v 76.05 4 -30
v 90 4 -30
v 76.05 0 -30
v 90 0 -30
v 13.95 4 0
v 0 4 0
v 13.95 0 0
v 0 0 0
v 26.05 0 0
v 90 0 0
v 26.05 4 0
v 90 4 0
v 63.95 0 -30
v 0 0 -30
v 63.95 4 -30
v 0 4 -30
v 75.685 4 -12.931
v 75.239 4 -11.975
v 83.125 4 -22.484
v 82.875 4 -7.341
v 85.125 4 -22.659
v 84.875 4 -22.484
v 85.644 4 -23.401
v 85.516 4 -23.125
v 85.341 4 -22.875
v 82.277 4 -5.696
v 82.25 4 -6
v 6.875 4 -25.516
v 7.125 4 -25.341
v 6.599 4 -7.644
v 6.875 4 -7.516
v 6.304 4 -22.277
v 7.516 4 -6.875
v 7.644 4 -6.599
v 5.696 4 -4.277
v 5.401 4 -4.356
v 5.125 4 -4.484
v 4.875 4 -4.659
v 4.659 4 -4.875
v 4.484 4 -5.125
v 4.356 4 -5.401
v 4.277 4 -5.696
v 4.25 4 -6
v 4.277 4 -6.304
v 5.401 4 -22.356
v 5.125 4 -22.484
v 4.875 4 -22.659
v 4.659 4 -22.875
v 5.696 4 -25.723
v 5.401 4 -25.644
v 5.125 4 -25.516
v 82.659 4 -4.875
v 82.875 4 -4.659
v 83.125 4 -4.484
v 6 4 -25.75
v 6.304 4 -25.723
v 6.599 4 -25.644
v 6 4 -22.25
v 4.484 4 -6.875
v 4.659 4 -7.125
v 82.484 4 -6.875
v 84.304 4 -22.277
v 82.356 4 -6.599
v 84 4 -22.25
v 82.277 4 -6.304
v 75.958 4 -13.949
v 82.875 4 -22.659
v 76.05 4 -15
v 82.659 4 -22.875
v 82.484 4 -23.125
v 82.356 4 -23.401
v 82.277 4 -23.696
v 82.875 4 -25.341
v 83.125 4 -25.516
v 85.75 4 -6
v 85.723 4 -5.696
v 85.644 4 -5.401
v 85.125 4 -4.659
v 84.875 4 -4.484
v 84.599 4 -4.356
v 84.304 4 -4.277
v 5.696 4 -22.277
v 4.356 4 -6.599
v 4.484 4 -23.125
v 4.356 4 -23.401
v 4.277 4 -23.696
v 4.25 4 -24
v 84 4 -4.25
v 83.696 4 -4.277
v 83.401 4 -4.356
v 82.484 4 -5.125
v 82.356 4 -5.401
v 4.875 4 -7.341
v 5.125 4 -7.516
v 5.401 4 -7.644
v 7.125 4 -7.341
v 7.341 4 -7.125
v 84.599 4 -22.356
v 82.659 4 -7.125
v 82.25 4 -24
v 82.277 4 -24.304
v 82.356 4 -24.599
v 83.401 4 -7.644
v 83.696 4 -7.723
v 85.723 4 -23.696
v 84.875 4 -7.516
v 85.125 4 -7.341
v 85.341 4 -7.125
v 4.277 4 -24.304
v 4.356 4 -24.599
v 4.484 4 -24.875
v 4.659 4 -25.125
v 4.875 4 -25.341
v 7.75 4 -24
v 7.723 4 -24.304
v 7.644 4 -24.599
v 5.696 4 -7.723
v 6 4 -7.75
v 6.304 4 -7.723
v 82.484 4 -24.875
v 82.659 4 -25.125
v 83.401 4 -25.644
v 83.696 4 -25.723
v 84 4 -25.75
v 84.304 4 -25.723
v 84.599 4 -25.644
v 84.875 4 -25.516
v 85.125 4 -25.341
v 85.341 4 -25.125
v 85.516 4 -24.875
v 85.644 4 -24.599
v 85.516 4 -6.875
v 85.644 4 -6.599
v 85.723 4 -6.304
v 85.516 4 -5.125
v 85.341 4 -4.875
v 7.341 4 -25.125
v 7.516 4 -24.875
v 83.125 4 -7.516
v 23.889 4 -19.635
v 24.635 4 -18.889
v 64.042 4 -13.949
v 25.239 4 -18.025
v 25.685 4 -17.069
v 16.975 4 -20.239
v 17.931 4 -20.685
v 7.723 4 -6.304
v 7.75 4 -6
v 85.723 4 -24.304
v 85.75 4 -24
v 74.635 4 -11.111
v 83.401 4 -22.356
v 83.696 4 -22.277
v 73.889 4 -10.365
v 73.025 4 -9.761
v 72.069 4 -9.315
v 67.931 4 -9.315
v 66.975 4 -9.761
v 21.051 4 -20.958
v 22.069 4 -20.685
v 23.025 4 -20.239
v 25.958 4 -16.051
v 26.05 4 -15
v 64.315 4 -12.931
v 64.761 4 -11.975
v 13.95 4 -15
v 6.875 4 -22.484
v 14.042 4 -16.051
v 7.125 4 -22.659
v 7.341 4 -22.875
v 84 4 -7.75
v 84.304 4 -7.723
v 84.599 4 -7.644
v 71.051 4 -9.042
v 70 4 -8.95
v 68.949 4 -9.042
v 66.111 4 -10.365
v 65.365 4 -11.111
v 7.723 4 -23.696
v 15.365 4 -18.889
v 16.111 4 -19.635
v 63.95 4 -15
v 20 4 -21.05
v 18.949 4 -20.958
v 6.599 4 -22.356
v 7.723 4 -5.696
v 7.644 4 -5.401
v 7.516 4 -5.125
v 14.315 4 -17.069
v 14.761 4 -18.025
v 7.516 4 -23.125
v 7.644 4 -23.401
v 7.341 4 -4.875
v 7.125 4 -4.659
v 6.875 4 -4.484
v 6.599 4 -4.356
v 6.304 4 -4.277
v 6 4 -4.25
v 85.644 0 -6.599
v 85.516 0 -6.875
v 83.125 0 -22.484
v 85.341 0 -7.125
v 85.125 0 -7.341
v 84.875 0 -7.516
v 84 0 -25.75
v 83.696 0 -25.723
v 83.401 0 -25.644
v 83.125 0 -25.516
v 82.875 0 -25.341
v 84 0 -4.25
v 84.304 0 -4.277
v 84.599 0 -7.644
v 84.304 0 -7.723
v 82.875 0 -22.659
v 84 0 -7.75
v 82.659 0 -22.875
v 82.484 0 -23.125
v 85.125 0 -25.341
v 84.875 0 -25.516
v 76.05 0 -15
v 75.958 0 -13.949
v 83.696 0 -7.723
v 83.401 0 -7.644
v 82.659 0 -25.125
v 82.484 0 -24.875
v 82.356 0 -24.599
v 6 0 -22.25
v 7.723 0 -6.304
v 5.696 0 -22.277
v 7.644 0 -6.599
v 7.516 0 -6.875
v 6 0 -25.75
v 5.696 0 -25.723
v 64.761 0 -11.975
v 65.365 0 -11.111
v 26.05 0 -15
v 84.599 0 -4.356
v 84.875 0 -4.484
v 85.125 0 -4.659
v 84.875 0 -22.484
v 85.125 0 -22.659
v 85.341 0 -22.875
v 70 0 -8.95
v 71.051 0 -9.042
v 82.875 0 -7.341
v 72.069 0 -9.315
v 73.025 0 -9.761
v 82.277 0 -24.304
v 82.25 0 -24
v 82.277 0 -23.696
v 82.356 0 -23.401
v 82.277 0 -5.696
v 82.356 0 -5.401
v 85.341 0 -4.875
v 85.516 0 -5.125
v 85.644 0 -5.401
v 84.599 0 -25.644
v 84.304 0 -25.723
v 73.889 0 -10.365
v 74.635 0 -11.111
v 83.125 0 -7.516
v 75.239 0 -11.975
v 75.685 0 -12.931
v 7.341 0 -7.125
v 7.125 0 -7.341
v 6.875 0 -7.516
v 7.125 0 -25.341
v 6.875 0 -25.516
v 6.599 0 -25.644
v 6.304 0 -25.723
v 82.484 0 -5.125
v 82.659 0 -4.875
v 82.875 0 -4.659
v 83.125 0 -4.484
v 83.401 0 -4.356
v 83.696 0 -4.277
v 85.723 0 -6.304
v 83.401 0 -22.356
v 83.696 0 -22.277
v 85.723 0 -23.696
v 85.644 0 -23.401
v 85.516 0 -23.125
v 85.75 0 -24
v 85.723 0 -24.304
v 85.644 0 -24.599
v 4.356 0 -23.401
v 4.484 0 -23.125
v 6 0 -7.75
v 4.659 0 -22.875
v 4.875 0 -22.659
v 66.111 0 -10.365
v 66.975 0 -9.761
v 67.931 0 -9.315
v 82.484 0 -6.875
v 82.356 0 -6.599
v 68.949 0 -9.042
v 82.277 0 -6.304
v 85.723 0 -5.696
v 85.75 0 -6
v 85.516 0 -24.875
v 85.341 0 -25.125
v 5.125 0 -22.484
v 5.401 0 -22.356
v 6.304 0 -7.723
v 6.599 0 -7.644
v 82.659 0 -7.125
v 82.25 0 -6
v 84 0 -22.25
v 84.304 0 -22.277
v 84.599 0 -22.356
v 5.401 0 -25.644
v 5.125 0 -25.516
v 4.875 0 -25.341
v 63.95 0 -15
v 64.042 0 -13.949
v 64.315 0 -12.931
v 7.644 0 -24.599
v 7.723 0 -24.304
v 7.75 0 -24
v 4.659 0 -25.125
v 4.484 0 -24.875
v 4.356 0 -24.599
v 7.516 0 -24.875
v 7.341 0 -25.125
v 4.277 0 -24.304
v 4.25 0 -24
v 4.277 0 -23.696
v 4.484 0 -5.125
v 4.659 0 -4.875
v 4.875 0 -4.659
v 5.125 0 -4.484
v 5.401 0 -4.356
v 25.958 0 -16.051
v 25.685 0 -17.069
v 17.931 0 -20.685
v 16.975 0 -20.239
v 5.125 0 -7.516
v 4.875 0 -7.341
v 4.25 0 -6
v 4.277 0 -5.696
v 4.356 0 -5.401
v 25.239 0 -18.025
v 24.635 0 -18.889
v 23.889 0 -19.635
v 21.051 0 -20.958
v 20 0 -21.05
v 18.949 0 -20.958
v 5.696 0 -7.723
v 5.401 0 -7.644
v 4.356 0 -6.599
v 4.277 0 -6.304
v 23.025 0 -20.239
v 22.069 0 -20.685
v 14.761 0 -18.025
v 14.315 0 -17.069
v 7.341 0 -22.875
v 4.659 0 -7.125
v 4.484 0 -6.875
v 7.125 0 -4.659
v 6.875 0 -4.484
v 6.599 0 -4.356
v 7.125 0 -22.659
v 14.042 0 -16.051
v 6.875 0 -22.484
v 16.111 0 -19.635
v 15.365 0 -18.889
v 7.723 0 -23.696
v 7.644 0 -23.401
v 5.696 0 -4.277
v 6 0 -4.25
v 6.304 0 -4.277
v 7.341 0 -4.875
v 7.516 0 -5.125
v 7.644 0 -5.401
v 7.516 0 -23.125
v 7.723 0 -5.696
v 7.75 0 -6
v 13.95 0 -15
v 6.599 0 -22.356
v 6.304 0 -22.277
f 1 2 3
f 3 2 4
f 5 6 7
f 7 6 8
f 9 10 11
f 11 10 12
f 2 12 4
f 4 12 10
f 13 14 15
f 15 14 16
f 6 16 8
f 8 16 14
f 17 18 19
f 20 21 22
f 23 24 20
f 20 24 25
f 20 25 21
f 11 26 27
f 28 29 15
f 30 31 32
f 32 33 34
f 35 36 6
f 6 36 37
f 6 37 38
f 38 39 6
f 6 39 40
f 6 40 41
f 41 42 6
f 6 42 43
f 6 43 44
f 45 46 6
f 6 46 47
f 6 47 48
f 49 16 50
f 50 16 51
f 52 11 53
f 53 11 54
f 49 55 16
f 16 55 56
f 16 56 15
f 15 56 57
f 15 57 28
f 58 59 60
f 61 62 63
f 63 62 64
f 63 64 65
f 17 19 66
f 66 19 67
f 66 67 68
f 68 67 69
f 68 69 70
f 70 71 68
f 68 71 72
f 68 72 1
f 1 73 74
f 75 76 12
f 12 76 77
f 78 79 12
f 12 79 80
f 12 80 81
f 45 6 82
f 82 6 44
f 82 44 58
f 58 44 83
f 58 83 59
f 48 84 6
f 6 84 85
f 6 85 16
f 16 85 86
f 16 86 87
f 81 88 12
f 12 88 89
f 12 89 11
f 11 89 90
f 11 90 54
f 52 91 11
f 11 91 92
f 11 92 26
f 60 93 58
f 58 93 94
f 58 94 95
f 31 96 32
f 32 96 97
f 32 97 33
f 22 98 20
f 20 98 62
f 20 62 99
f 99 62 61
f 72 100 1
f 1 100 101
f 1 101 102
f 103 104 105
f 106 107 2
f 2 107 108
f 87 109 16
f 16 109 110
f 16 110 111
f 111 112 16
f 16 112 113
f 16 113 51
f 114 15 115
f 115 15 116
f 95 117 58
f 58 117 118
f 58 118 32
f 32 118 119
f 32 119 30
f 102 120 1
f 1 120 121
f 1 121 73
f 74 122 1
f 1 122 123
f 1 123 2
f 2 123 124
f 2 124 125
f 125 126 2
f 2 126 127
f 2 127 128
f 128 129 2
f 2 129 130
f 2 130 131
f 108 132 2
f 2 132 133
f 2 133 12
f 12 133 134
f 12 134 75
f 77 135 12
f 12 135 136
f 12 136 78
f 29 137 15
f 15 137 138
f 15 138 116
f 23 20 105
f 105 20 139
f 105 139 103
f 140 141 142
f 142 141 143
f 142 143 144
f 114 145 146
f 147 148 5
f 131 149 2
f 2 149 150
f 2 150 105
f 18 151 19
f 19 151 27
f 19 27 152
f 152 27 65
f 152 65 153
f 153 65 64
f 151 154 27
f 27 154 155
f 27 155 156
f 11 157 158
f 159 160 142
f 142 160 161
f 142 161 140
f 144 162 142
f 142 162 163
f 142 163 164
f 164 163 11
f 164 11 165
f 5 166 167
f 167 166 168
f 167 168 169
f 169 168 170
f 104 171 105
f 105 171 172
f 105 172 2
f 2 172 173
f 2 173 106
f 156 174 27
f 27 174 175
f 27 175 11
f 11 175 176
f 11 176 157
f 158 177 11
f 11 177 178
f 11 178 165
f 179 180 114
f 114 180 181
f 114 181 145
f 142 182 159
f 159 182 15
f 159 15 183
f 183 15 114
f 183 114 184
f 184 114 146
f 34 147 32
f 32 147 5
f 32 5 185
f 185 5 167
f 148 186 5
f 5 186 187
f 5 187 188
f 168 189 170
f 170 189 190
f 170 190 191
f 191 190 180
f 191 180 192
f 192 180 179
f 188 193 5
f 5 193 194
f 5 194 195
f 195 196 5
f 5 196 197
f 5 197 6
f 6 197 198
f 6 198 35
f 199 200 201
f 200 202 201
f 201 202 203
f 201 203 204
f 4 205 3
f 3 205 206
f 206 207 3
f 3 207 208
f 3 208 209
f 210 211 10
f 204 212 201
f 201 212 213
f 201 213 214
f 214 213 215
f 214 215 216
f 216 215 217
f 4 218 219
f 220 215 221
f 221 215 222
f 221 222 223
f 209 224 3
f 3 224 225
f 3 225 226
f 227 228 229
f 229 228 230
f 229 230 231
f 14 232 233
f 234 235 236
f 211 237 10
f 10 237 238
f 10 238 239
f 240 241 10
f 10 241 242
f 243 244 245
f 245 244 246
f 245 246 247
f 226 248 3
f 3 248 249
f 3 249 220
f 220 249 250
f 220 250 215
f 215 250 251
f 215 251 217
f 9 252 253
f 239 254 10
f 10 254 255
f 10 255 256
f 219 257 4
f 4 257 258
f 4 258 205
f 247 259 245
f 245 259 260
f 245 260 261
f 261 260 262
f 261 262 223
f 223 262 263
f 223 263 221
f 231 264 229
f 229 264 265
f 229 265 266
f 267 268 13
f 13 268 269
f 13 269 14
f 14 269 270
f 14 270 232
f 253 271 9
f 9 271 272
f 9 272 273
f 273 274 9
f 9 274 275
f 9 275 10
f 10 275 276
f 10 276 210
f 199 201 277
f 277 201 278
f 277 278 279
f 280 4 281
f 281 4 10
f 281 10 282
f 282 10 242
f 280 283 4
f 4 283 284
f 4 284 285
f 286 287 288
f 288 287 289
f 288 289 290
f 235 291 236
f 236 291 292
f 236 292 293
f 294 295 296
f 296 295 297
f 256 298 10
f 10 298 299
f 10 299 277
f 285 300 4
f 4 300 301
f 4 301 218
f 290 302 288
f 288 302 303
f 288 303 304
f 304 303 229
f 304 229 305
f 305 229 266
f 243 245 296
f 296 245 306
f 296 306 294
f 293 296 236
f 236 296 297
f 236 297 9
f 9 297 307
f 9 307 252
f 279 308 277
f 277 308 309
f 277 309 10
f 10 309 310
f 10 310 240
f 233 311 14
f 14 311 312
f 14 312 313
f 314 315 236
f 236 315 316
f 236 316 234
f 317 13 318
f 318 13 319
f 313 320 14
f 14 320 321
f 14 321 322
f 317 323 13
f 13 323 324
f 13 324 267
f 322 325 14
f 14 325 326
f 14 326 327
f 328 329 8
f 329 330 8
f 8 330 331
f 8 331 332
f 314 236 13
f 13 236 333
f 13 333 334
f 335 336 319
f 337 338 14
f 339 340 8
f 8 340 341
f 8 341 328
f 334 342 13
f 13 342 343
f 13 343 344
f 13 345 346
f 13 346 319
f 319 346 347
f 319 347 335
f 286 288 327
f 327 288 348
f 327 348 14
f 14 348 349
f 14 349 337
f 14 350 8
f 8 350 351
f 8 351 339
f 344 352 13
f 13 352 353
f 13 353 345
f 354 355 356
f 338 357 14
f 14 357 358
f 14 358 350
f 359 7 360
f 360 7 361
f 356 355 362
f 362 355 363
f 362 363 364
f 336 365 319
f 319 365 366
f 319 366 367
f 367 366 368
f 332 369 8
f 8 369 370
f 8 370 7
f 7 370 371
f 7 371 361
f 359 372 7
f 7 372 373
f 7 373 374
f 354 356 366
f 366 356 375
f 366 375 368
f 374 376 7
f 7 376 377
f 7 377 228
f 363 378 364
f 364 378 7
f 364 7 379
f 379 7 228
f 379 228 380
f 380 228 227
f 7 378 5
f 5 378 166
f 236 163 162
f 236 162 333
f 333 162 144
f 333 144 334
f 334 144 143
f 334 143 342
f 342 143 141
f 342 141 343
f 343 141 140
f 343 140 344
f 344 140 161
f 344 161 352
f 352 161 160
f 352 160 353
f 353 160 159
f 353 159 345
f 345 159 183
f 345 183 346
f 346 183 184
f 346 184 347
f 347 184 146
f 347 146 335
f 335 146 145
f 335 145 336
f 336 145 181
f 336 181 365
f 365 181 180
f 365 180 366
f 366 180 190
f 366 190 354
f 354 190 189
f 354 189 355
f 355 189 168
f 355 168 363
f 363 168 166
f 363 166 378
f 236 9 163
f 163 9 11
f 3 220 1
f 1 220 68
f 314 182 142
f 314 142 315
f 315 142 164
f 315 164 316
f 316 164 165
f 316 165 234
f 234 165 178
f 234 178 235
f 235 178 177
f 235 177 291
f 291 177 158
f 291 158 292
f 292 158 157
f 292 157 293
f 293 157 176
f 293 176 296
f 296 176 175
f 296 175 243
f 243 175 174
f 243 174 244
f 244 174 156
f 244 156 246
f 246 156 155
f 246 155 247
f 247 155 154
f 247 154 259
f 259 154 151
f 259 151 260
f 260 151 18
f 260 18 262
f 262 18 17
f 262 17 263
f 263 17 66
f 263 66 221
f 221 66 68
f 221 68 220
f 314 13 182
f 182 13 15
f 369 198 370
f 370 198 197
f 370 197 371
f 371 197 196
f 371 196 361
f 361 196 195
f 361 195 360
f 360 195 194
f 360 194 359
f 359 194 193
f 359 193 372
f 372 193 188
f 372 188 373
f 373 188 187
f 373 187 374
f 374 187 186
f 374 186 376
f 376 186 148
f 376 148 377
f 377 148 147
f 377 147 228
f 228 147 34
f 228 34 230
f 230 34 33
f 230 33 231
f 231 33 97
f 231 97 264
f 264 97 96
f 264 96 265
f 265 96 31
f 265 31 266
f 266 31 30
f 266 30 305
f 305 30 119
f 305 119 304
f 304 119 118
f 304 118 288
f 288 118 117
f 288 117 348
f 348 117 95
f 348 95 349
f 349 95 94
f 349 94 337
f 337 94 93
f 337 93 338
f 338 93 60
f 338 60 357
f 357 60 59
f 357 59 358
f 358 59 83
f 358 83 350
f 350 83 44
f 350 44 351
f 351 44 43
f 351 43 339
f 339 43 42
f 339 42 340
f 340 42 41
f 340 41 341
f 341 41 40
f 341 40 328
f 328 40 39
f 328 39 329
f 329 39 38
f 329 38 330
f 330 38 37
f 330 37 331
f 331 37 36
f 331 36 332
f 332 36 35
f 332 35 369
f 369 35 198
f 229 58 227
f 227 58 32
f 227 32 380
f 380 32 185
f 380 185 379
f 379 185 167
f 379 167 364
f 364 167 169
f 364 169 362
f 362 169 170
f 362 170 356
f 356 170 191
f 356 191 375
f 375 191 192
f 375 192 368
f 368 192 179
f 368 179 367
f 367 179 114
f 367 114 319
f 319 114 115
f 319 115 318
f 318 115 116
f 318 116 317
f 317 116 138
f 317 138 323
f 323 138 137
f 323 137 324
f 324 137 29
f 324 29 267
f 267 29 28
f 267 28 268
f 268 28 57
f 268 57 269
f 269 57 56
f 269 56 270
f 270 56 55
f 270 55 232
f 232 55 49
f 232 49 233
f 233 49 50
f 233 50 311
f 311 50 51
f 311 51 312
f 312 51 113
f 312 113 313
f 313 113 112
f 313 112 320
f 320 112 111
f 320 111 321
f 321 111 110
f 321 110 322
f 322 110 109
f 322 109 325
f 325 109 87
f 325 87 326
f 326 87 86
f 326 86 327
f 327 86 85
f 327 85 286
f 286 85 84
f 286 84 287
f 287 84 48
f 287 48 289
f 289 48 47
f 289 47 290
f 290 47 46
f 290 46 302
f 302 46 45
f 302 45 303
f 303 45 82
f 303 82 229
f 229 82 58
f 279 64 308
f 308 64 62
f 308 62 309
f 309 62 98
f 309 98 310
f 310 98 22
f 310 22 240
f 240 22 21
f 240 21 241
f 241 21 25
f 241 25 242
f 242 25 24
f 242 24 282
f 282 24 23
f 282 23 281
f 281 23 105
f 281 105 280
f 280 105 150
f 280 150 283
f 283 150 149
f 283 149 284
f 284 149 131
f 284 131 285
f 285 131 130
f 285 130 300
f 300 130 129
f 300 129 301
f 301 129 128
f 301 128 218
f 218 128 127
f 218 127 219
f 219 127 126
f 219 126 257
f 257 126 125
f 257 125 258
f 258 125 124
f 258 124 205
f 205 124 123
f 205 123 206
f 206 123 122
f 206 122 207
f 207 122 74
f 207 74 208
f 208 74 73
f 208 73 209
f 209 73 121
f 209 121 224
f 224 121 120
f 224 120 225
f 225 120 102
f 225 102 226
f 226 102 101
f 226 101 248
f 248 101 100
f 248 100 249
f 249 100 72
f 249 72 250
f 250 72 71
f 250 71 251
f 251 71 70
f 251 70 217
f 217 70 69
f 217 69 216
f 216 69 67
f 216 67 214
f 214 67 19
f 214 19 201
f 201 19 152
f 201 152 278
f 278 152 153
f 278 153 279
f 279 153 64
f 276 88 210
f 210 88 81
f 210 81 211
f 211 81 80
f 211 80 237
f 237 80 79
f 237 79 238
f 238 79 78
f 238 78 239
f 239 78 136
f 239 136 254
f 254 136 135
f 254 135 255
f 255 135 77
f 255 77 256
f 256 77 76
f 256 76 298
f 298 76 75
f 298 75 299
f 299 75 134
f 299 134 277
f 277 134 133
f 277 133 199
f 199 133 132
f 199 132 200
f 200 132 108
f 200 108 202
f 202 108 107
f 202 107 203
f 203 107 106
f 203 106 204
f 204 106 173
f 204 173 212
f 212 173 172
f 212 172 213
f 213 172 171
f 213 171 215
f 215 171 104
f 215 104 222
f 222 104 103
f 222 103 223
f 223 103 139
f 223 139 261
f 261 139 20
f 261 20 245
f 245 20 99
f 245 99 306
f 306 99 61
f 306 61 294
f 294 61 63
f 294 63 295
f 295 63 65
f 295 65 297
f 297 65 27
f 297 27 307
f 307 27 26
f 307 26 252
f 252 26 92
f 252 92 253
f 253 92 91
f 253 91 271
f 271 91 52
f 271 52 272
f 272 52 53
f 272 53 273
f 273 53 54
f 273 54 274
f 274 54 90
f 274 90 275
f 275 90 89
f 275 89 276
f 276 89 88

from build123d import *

# Parameters (mm, degrees)
SKETCH2_W           = 90
SKETCH2_H           = 30
BOSS_EXTRUDE1_DEPTH = 4
SKETCH3_R           = 1.75
CUT_EXTRUDE1_DEPTH  = 5


with BuildPart() as part:
    # Sketch2 → Boss-Extrude1 (new body)
    with BuildSketch(Plane(origin=(0, 0, 0), x_dir=(1, 0, 0), z_dir=(0, 1, 0))):
        with Locations((45, 15)):
            Rectangle(SKETCH2_W, SKETCH2_H)
    extrude(amount=BOSS_EXTRUDE1_DEPTH)

    # Sketch3 → Cut-Extrude1 (cut, through all)
    with BuildSketch(Plane(origin=(0, 4, 0), x_dir=(1, 0, 0), z_dir=(0, 1, 0))):
        with Locations((6, 6)):
            Circle(SKETCH3_R)
        with Locations((6, 24)):
            Circle(SKETCH3_R)
        with Locations((84, 24)):
            Circle(SKETCH3_R)
        with Locations((84, 6)):
            Circle(SKETCH3_R)
        with BuildLine():
            Line((13.95, 0), (26.05, 0))
            Line((26.05, 0), (26.05, 15))
            ThreePointArc((26.05, 15), (20, 21.05), (13.95, 15))
            Line((13.95, 15), (13.95, 0))
        make_face()
        with BuildLine():
            Line((63.95, 30), (63.95, 15))
            ThreePointArc((63.95, 15), (70, 8.95), (76.05, 15))
            Line((76.05, 15), (76.05, 30))
            Line((76.05, 30), (63.95, 30))
        make_face()
    extrude(amount=-CUT_EXTRUDE1_DEPTH, mode=Mode.SUBTRACT)


solid = part.part
